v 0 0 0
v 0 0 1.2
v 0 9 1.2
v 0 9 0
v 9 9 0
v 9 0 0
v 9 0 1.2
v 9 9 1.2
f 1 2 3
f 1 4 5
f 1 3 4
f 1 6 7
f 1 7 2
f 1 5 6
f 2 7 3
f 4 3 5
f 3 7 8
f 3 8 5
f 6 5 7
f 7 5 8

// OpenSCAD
/* Warning, this is a very basic generator with a lot of approximation 
input data : [TFBGA, KWX, 9x9x1.2mm, 105, , A, C04-00469A]
generated by com.zoubworld.electronics.cad.model3d.Basic
Date : Sun Feb 15 10:50:48 CET 2026
*/

//body
color("black")
translate([0,0,0])
cube([9.0,9.0,1.2], center=false);
